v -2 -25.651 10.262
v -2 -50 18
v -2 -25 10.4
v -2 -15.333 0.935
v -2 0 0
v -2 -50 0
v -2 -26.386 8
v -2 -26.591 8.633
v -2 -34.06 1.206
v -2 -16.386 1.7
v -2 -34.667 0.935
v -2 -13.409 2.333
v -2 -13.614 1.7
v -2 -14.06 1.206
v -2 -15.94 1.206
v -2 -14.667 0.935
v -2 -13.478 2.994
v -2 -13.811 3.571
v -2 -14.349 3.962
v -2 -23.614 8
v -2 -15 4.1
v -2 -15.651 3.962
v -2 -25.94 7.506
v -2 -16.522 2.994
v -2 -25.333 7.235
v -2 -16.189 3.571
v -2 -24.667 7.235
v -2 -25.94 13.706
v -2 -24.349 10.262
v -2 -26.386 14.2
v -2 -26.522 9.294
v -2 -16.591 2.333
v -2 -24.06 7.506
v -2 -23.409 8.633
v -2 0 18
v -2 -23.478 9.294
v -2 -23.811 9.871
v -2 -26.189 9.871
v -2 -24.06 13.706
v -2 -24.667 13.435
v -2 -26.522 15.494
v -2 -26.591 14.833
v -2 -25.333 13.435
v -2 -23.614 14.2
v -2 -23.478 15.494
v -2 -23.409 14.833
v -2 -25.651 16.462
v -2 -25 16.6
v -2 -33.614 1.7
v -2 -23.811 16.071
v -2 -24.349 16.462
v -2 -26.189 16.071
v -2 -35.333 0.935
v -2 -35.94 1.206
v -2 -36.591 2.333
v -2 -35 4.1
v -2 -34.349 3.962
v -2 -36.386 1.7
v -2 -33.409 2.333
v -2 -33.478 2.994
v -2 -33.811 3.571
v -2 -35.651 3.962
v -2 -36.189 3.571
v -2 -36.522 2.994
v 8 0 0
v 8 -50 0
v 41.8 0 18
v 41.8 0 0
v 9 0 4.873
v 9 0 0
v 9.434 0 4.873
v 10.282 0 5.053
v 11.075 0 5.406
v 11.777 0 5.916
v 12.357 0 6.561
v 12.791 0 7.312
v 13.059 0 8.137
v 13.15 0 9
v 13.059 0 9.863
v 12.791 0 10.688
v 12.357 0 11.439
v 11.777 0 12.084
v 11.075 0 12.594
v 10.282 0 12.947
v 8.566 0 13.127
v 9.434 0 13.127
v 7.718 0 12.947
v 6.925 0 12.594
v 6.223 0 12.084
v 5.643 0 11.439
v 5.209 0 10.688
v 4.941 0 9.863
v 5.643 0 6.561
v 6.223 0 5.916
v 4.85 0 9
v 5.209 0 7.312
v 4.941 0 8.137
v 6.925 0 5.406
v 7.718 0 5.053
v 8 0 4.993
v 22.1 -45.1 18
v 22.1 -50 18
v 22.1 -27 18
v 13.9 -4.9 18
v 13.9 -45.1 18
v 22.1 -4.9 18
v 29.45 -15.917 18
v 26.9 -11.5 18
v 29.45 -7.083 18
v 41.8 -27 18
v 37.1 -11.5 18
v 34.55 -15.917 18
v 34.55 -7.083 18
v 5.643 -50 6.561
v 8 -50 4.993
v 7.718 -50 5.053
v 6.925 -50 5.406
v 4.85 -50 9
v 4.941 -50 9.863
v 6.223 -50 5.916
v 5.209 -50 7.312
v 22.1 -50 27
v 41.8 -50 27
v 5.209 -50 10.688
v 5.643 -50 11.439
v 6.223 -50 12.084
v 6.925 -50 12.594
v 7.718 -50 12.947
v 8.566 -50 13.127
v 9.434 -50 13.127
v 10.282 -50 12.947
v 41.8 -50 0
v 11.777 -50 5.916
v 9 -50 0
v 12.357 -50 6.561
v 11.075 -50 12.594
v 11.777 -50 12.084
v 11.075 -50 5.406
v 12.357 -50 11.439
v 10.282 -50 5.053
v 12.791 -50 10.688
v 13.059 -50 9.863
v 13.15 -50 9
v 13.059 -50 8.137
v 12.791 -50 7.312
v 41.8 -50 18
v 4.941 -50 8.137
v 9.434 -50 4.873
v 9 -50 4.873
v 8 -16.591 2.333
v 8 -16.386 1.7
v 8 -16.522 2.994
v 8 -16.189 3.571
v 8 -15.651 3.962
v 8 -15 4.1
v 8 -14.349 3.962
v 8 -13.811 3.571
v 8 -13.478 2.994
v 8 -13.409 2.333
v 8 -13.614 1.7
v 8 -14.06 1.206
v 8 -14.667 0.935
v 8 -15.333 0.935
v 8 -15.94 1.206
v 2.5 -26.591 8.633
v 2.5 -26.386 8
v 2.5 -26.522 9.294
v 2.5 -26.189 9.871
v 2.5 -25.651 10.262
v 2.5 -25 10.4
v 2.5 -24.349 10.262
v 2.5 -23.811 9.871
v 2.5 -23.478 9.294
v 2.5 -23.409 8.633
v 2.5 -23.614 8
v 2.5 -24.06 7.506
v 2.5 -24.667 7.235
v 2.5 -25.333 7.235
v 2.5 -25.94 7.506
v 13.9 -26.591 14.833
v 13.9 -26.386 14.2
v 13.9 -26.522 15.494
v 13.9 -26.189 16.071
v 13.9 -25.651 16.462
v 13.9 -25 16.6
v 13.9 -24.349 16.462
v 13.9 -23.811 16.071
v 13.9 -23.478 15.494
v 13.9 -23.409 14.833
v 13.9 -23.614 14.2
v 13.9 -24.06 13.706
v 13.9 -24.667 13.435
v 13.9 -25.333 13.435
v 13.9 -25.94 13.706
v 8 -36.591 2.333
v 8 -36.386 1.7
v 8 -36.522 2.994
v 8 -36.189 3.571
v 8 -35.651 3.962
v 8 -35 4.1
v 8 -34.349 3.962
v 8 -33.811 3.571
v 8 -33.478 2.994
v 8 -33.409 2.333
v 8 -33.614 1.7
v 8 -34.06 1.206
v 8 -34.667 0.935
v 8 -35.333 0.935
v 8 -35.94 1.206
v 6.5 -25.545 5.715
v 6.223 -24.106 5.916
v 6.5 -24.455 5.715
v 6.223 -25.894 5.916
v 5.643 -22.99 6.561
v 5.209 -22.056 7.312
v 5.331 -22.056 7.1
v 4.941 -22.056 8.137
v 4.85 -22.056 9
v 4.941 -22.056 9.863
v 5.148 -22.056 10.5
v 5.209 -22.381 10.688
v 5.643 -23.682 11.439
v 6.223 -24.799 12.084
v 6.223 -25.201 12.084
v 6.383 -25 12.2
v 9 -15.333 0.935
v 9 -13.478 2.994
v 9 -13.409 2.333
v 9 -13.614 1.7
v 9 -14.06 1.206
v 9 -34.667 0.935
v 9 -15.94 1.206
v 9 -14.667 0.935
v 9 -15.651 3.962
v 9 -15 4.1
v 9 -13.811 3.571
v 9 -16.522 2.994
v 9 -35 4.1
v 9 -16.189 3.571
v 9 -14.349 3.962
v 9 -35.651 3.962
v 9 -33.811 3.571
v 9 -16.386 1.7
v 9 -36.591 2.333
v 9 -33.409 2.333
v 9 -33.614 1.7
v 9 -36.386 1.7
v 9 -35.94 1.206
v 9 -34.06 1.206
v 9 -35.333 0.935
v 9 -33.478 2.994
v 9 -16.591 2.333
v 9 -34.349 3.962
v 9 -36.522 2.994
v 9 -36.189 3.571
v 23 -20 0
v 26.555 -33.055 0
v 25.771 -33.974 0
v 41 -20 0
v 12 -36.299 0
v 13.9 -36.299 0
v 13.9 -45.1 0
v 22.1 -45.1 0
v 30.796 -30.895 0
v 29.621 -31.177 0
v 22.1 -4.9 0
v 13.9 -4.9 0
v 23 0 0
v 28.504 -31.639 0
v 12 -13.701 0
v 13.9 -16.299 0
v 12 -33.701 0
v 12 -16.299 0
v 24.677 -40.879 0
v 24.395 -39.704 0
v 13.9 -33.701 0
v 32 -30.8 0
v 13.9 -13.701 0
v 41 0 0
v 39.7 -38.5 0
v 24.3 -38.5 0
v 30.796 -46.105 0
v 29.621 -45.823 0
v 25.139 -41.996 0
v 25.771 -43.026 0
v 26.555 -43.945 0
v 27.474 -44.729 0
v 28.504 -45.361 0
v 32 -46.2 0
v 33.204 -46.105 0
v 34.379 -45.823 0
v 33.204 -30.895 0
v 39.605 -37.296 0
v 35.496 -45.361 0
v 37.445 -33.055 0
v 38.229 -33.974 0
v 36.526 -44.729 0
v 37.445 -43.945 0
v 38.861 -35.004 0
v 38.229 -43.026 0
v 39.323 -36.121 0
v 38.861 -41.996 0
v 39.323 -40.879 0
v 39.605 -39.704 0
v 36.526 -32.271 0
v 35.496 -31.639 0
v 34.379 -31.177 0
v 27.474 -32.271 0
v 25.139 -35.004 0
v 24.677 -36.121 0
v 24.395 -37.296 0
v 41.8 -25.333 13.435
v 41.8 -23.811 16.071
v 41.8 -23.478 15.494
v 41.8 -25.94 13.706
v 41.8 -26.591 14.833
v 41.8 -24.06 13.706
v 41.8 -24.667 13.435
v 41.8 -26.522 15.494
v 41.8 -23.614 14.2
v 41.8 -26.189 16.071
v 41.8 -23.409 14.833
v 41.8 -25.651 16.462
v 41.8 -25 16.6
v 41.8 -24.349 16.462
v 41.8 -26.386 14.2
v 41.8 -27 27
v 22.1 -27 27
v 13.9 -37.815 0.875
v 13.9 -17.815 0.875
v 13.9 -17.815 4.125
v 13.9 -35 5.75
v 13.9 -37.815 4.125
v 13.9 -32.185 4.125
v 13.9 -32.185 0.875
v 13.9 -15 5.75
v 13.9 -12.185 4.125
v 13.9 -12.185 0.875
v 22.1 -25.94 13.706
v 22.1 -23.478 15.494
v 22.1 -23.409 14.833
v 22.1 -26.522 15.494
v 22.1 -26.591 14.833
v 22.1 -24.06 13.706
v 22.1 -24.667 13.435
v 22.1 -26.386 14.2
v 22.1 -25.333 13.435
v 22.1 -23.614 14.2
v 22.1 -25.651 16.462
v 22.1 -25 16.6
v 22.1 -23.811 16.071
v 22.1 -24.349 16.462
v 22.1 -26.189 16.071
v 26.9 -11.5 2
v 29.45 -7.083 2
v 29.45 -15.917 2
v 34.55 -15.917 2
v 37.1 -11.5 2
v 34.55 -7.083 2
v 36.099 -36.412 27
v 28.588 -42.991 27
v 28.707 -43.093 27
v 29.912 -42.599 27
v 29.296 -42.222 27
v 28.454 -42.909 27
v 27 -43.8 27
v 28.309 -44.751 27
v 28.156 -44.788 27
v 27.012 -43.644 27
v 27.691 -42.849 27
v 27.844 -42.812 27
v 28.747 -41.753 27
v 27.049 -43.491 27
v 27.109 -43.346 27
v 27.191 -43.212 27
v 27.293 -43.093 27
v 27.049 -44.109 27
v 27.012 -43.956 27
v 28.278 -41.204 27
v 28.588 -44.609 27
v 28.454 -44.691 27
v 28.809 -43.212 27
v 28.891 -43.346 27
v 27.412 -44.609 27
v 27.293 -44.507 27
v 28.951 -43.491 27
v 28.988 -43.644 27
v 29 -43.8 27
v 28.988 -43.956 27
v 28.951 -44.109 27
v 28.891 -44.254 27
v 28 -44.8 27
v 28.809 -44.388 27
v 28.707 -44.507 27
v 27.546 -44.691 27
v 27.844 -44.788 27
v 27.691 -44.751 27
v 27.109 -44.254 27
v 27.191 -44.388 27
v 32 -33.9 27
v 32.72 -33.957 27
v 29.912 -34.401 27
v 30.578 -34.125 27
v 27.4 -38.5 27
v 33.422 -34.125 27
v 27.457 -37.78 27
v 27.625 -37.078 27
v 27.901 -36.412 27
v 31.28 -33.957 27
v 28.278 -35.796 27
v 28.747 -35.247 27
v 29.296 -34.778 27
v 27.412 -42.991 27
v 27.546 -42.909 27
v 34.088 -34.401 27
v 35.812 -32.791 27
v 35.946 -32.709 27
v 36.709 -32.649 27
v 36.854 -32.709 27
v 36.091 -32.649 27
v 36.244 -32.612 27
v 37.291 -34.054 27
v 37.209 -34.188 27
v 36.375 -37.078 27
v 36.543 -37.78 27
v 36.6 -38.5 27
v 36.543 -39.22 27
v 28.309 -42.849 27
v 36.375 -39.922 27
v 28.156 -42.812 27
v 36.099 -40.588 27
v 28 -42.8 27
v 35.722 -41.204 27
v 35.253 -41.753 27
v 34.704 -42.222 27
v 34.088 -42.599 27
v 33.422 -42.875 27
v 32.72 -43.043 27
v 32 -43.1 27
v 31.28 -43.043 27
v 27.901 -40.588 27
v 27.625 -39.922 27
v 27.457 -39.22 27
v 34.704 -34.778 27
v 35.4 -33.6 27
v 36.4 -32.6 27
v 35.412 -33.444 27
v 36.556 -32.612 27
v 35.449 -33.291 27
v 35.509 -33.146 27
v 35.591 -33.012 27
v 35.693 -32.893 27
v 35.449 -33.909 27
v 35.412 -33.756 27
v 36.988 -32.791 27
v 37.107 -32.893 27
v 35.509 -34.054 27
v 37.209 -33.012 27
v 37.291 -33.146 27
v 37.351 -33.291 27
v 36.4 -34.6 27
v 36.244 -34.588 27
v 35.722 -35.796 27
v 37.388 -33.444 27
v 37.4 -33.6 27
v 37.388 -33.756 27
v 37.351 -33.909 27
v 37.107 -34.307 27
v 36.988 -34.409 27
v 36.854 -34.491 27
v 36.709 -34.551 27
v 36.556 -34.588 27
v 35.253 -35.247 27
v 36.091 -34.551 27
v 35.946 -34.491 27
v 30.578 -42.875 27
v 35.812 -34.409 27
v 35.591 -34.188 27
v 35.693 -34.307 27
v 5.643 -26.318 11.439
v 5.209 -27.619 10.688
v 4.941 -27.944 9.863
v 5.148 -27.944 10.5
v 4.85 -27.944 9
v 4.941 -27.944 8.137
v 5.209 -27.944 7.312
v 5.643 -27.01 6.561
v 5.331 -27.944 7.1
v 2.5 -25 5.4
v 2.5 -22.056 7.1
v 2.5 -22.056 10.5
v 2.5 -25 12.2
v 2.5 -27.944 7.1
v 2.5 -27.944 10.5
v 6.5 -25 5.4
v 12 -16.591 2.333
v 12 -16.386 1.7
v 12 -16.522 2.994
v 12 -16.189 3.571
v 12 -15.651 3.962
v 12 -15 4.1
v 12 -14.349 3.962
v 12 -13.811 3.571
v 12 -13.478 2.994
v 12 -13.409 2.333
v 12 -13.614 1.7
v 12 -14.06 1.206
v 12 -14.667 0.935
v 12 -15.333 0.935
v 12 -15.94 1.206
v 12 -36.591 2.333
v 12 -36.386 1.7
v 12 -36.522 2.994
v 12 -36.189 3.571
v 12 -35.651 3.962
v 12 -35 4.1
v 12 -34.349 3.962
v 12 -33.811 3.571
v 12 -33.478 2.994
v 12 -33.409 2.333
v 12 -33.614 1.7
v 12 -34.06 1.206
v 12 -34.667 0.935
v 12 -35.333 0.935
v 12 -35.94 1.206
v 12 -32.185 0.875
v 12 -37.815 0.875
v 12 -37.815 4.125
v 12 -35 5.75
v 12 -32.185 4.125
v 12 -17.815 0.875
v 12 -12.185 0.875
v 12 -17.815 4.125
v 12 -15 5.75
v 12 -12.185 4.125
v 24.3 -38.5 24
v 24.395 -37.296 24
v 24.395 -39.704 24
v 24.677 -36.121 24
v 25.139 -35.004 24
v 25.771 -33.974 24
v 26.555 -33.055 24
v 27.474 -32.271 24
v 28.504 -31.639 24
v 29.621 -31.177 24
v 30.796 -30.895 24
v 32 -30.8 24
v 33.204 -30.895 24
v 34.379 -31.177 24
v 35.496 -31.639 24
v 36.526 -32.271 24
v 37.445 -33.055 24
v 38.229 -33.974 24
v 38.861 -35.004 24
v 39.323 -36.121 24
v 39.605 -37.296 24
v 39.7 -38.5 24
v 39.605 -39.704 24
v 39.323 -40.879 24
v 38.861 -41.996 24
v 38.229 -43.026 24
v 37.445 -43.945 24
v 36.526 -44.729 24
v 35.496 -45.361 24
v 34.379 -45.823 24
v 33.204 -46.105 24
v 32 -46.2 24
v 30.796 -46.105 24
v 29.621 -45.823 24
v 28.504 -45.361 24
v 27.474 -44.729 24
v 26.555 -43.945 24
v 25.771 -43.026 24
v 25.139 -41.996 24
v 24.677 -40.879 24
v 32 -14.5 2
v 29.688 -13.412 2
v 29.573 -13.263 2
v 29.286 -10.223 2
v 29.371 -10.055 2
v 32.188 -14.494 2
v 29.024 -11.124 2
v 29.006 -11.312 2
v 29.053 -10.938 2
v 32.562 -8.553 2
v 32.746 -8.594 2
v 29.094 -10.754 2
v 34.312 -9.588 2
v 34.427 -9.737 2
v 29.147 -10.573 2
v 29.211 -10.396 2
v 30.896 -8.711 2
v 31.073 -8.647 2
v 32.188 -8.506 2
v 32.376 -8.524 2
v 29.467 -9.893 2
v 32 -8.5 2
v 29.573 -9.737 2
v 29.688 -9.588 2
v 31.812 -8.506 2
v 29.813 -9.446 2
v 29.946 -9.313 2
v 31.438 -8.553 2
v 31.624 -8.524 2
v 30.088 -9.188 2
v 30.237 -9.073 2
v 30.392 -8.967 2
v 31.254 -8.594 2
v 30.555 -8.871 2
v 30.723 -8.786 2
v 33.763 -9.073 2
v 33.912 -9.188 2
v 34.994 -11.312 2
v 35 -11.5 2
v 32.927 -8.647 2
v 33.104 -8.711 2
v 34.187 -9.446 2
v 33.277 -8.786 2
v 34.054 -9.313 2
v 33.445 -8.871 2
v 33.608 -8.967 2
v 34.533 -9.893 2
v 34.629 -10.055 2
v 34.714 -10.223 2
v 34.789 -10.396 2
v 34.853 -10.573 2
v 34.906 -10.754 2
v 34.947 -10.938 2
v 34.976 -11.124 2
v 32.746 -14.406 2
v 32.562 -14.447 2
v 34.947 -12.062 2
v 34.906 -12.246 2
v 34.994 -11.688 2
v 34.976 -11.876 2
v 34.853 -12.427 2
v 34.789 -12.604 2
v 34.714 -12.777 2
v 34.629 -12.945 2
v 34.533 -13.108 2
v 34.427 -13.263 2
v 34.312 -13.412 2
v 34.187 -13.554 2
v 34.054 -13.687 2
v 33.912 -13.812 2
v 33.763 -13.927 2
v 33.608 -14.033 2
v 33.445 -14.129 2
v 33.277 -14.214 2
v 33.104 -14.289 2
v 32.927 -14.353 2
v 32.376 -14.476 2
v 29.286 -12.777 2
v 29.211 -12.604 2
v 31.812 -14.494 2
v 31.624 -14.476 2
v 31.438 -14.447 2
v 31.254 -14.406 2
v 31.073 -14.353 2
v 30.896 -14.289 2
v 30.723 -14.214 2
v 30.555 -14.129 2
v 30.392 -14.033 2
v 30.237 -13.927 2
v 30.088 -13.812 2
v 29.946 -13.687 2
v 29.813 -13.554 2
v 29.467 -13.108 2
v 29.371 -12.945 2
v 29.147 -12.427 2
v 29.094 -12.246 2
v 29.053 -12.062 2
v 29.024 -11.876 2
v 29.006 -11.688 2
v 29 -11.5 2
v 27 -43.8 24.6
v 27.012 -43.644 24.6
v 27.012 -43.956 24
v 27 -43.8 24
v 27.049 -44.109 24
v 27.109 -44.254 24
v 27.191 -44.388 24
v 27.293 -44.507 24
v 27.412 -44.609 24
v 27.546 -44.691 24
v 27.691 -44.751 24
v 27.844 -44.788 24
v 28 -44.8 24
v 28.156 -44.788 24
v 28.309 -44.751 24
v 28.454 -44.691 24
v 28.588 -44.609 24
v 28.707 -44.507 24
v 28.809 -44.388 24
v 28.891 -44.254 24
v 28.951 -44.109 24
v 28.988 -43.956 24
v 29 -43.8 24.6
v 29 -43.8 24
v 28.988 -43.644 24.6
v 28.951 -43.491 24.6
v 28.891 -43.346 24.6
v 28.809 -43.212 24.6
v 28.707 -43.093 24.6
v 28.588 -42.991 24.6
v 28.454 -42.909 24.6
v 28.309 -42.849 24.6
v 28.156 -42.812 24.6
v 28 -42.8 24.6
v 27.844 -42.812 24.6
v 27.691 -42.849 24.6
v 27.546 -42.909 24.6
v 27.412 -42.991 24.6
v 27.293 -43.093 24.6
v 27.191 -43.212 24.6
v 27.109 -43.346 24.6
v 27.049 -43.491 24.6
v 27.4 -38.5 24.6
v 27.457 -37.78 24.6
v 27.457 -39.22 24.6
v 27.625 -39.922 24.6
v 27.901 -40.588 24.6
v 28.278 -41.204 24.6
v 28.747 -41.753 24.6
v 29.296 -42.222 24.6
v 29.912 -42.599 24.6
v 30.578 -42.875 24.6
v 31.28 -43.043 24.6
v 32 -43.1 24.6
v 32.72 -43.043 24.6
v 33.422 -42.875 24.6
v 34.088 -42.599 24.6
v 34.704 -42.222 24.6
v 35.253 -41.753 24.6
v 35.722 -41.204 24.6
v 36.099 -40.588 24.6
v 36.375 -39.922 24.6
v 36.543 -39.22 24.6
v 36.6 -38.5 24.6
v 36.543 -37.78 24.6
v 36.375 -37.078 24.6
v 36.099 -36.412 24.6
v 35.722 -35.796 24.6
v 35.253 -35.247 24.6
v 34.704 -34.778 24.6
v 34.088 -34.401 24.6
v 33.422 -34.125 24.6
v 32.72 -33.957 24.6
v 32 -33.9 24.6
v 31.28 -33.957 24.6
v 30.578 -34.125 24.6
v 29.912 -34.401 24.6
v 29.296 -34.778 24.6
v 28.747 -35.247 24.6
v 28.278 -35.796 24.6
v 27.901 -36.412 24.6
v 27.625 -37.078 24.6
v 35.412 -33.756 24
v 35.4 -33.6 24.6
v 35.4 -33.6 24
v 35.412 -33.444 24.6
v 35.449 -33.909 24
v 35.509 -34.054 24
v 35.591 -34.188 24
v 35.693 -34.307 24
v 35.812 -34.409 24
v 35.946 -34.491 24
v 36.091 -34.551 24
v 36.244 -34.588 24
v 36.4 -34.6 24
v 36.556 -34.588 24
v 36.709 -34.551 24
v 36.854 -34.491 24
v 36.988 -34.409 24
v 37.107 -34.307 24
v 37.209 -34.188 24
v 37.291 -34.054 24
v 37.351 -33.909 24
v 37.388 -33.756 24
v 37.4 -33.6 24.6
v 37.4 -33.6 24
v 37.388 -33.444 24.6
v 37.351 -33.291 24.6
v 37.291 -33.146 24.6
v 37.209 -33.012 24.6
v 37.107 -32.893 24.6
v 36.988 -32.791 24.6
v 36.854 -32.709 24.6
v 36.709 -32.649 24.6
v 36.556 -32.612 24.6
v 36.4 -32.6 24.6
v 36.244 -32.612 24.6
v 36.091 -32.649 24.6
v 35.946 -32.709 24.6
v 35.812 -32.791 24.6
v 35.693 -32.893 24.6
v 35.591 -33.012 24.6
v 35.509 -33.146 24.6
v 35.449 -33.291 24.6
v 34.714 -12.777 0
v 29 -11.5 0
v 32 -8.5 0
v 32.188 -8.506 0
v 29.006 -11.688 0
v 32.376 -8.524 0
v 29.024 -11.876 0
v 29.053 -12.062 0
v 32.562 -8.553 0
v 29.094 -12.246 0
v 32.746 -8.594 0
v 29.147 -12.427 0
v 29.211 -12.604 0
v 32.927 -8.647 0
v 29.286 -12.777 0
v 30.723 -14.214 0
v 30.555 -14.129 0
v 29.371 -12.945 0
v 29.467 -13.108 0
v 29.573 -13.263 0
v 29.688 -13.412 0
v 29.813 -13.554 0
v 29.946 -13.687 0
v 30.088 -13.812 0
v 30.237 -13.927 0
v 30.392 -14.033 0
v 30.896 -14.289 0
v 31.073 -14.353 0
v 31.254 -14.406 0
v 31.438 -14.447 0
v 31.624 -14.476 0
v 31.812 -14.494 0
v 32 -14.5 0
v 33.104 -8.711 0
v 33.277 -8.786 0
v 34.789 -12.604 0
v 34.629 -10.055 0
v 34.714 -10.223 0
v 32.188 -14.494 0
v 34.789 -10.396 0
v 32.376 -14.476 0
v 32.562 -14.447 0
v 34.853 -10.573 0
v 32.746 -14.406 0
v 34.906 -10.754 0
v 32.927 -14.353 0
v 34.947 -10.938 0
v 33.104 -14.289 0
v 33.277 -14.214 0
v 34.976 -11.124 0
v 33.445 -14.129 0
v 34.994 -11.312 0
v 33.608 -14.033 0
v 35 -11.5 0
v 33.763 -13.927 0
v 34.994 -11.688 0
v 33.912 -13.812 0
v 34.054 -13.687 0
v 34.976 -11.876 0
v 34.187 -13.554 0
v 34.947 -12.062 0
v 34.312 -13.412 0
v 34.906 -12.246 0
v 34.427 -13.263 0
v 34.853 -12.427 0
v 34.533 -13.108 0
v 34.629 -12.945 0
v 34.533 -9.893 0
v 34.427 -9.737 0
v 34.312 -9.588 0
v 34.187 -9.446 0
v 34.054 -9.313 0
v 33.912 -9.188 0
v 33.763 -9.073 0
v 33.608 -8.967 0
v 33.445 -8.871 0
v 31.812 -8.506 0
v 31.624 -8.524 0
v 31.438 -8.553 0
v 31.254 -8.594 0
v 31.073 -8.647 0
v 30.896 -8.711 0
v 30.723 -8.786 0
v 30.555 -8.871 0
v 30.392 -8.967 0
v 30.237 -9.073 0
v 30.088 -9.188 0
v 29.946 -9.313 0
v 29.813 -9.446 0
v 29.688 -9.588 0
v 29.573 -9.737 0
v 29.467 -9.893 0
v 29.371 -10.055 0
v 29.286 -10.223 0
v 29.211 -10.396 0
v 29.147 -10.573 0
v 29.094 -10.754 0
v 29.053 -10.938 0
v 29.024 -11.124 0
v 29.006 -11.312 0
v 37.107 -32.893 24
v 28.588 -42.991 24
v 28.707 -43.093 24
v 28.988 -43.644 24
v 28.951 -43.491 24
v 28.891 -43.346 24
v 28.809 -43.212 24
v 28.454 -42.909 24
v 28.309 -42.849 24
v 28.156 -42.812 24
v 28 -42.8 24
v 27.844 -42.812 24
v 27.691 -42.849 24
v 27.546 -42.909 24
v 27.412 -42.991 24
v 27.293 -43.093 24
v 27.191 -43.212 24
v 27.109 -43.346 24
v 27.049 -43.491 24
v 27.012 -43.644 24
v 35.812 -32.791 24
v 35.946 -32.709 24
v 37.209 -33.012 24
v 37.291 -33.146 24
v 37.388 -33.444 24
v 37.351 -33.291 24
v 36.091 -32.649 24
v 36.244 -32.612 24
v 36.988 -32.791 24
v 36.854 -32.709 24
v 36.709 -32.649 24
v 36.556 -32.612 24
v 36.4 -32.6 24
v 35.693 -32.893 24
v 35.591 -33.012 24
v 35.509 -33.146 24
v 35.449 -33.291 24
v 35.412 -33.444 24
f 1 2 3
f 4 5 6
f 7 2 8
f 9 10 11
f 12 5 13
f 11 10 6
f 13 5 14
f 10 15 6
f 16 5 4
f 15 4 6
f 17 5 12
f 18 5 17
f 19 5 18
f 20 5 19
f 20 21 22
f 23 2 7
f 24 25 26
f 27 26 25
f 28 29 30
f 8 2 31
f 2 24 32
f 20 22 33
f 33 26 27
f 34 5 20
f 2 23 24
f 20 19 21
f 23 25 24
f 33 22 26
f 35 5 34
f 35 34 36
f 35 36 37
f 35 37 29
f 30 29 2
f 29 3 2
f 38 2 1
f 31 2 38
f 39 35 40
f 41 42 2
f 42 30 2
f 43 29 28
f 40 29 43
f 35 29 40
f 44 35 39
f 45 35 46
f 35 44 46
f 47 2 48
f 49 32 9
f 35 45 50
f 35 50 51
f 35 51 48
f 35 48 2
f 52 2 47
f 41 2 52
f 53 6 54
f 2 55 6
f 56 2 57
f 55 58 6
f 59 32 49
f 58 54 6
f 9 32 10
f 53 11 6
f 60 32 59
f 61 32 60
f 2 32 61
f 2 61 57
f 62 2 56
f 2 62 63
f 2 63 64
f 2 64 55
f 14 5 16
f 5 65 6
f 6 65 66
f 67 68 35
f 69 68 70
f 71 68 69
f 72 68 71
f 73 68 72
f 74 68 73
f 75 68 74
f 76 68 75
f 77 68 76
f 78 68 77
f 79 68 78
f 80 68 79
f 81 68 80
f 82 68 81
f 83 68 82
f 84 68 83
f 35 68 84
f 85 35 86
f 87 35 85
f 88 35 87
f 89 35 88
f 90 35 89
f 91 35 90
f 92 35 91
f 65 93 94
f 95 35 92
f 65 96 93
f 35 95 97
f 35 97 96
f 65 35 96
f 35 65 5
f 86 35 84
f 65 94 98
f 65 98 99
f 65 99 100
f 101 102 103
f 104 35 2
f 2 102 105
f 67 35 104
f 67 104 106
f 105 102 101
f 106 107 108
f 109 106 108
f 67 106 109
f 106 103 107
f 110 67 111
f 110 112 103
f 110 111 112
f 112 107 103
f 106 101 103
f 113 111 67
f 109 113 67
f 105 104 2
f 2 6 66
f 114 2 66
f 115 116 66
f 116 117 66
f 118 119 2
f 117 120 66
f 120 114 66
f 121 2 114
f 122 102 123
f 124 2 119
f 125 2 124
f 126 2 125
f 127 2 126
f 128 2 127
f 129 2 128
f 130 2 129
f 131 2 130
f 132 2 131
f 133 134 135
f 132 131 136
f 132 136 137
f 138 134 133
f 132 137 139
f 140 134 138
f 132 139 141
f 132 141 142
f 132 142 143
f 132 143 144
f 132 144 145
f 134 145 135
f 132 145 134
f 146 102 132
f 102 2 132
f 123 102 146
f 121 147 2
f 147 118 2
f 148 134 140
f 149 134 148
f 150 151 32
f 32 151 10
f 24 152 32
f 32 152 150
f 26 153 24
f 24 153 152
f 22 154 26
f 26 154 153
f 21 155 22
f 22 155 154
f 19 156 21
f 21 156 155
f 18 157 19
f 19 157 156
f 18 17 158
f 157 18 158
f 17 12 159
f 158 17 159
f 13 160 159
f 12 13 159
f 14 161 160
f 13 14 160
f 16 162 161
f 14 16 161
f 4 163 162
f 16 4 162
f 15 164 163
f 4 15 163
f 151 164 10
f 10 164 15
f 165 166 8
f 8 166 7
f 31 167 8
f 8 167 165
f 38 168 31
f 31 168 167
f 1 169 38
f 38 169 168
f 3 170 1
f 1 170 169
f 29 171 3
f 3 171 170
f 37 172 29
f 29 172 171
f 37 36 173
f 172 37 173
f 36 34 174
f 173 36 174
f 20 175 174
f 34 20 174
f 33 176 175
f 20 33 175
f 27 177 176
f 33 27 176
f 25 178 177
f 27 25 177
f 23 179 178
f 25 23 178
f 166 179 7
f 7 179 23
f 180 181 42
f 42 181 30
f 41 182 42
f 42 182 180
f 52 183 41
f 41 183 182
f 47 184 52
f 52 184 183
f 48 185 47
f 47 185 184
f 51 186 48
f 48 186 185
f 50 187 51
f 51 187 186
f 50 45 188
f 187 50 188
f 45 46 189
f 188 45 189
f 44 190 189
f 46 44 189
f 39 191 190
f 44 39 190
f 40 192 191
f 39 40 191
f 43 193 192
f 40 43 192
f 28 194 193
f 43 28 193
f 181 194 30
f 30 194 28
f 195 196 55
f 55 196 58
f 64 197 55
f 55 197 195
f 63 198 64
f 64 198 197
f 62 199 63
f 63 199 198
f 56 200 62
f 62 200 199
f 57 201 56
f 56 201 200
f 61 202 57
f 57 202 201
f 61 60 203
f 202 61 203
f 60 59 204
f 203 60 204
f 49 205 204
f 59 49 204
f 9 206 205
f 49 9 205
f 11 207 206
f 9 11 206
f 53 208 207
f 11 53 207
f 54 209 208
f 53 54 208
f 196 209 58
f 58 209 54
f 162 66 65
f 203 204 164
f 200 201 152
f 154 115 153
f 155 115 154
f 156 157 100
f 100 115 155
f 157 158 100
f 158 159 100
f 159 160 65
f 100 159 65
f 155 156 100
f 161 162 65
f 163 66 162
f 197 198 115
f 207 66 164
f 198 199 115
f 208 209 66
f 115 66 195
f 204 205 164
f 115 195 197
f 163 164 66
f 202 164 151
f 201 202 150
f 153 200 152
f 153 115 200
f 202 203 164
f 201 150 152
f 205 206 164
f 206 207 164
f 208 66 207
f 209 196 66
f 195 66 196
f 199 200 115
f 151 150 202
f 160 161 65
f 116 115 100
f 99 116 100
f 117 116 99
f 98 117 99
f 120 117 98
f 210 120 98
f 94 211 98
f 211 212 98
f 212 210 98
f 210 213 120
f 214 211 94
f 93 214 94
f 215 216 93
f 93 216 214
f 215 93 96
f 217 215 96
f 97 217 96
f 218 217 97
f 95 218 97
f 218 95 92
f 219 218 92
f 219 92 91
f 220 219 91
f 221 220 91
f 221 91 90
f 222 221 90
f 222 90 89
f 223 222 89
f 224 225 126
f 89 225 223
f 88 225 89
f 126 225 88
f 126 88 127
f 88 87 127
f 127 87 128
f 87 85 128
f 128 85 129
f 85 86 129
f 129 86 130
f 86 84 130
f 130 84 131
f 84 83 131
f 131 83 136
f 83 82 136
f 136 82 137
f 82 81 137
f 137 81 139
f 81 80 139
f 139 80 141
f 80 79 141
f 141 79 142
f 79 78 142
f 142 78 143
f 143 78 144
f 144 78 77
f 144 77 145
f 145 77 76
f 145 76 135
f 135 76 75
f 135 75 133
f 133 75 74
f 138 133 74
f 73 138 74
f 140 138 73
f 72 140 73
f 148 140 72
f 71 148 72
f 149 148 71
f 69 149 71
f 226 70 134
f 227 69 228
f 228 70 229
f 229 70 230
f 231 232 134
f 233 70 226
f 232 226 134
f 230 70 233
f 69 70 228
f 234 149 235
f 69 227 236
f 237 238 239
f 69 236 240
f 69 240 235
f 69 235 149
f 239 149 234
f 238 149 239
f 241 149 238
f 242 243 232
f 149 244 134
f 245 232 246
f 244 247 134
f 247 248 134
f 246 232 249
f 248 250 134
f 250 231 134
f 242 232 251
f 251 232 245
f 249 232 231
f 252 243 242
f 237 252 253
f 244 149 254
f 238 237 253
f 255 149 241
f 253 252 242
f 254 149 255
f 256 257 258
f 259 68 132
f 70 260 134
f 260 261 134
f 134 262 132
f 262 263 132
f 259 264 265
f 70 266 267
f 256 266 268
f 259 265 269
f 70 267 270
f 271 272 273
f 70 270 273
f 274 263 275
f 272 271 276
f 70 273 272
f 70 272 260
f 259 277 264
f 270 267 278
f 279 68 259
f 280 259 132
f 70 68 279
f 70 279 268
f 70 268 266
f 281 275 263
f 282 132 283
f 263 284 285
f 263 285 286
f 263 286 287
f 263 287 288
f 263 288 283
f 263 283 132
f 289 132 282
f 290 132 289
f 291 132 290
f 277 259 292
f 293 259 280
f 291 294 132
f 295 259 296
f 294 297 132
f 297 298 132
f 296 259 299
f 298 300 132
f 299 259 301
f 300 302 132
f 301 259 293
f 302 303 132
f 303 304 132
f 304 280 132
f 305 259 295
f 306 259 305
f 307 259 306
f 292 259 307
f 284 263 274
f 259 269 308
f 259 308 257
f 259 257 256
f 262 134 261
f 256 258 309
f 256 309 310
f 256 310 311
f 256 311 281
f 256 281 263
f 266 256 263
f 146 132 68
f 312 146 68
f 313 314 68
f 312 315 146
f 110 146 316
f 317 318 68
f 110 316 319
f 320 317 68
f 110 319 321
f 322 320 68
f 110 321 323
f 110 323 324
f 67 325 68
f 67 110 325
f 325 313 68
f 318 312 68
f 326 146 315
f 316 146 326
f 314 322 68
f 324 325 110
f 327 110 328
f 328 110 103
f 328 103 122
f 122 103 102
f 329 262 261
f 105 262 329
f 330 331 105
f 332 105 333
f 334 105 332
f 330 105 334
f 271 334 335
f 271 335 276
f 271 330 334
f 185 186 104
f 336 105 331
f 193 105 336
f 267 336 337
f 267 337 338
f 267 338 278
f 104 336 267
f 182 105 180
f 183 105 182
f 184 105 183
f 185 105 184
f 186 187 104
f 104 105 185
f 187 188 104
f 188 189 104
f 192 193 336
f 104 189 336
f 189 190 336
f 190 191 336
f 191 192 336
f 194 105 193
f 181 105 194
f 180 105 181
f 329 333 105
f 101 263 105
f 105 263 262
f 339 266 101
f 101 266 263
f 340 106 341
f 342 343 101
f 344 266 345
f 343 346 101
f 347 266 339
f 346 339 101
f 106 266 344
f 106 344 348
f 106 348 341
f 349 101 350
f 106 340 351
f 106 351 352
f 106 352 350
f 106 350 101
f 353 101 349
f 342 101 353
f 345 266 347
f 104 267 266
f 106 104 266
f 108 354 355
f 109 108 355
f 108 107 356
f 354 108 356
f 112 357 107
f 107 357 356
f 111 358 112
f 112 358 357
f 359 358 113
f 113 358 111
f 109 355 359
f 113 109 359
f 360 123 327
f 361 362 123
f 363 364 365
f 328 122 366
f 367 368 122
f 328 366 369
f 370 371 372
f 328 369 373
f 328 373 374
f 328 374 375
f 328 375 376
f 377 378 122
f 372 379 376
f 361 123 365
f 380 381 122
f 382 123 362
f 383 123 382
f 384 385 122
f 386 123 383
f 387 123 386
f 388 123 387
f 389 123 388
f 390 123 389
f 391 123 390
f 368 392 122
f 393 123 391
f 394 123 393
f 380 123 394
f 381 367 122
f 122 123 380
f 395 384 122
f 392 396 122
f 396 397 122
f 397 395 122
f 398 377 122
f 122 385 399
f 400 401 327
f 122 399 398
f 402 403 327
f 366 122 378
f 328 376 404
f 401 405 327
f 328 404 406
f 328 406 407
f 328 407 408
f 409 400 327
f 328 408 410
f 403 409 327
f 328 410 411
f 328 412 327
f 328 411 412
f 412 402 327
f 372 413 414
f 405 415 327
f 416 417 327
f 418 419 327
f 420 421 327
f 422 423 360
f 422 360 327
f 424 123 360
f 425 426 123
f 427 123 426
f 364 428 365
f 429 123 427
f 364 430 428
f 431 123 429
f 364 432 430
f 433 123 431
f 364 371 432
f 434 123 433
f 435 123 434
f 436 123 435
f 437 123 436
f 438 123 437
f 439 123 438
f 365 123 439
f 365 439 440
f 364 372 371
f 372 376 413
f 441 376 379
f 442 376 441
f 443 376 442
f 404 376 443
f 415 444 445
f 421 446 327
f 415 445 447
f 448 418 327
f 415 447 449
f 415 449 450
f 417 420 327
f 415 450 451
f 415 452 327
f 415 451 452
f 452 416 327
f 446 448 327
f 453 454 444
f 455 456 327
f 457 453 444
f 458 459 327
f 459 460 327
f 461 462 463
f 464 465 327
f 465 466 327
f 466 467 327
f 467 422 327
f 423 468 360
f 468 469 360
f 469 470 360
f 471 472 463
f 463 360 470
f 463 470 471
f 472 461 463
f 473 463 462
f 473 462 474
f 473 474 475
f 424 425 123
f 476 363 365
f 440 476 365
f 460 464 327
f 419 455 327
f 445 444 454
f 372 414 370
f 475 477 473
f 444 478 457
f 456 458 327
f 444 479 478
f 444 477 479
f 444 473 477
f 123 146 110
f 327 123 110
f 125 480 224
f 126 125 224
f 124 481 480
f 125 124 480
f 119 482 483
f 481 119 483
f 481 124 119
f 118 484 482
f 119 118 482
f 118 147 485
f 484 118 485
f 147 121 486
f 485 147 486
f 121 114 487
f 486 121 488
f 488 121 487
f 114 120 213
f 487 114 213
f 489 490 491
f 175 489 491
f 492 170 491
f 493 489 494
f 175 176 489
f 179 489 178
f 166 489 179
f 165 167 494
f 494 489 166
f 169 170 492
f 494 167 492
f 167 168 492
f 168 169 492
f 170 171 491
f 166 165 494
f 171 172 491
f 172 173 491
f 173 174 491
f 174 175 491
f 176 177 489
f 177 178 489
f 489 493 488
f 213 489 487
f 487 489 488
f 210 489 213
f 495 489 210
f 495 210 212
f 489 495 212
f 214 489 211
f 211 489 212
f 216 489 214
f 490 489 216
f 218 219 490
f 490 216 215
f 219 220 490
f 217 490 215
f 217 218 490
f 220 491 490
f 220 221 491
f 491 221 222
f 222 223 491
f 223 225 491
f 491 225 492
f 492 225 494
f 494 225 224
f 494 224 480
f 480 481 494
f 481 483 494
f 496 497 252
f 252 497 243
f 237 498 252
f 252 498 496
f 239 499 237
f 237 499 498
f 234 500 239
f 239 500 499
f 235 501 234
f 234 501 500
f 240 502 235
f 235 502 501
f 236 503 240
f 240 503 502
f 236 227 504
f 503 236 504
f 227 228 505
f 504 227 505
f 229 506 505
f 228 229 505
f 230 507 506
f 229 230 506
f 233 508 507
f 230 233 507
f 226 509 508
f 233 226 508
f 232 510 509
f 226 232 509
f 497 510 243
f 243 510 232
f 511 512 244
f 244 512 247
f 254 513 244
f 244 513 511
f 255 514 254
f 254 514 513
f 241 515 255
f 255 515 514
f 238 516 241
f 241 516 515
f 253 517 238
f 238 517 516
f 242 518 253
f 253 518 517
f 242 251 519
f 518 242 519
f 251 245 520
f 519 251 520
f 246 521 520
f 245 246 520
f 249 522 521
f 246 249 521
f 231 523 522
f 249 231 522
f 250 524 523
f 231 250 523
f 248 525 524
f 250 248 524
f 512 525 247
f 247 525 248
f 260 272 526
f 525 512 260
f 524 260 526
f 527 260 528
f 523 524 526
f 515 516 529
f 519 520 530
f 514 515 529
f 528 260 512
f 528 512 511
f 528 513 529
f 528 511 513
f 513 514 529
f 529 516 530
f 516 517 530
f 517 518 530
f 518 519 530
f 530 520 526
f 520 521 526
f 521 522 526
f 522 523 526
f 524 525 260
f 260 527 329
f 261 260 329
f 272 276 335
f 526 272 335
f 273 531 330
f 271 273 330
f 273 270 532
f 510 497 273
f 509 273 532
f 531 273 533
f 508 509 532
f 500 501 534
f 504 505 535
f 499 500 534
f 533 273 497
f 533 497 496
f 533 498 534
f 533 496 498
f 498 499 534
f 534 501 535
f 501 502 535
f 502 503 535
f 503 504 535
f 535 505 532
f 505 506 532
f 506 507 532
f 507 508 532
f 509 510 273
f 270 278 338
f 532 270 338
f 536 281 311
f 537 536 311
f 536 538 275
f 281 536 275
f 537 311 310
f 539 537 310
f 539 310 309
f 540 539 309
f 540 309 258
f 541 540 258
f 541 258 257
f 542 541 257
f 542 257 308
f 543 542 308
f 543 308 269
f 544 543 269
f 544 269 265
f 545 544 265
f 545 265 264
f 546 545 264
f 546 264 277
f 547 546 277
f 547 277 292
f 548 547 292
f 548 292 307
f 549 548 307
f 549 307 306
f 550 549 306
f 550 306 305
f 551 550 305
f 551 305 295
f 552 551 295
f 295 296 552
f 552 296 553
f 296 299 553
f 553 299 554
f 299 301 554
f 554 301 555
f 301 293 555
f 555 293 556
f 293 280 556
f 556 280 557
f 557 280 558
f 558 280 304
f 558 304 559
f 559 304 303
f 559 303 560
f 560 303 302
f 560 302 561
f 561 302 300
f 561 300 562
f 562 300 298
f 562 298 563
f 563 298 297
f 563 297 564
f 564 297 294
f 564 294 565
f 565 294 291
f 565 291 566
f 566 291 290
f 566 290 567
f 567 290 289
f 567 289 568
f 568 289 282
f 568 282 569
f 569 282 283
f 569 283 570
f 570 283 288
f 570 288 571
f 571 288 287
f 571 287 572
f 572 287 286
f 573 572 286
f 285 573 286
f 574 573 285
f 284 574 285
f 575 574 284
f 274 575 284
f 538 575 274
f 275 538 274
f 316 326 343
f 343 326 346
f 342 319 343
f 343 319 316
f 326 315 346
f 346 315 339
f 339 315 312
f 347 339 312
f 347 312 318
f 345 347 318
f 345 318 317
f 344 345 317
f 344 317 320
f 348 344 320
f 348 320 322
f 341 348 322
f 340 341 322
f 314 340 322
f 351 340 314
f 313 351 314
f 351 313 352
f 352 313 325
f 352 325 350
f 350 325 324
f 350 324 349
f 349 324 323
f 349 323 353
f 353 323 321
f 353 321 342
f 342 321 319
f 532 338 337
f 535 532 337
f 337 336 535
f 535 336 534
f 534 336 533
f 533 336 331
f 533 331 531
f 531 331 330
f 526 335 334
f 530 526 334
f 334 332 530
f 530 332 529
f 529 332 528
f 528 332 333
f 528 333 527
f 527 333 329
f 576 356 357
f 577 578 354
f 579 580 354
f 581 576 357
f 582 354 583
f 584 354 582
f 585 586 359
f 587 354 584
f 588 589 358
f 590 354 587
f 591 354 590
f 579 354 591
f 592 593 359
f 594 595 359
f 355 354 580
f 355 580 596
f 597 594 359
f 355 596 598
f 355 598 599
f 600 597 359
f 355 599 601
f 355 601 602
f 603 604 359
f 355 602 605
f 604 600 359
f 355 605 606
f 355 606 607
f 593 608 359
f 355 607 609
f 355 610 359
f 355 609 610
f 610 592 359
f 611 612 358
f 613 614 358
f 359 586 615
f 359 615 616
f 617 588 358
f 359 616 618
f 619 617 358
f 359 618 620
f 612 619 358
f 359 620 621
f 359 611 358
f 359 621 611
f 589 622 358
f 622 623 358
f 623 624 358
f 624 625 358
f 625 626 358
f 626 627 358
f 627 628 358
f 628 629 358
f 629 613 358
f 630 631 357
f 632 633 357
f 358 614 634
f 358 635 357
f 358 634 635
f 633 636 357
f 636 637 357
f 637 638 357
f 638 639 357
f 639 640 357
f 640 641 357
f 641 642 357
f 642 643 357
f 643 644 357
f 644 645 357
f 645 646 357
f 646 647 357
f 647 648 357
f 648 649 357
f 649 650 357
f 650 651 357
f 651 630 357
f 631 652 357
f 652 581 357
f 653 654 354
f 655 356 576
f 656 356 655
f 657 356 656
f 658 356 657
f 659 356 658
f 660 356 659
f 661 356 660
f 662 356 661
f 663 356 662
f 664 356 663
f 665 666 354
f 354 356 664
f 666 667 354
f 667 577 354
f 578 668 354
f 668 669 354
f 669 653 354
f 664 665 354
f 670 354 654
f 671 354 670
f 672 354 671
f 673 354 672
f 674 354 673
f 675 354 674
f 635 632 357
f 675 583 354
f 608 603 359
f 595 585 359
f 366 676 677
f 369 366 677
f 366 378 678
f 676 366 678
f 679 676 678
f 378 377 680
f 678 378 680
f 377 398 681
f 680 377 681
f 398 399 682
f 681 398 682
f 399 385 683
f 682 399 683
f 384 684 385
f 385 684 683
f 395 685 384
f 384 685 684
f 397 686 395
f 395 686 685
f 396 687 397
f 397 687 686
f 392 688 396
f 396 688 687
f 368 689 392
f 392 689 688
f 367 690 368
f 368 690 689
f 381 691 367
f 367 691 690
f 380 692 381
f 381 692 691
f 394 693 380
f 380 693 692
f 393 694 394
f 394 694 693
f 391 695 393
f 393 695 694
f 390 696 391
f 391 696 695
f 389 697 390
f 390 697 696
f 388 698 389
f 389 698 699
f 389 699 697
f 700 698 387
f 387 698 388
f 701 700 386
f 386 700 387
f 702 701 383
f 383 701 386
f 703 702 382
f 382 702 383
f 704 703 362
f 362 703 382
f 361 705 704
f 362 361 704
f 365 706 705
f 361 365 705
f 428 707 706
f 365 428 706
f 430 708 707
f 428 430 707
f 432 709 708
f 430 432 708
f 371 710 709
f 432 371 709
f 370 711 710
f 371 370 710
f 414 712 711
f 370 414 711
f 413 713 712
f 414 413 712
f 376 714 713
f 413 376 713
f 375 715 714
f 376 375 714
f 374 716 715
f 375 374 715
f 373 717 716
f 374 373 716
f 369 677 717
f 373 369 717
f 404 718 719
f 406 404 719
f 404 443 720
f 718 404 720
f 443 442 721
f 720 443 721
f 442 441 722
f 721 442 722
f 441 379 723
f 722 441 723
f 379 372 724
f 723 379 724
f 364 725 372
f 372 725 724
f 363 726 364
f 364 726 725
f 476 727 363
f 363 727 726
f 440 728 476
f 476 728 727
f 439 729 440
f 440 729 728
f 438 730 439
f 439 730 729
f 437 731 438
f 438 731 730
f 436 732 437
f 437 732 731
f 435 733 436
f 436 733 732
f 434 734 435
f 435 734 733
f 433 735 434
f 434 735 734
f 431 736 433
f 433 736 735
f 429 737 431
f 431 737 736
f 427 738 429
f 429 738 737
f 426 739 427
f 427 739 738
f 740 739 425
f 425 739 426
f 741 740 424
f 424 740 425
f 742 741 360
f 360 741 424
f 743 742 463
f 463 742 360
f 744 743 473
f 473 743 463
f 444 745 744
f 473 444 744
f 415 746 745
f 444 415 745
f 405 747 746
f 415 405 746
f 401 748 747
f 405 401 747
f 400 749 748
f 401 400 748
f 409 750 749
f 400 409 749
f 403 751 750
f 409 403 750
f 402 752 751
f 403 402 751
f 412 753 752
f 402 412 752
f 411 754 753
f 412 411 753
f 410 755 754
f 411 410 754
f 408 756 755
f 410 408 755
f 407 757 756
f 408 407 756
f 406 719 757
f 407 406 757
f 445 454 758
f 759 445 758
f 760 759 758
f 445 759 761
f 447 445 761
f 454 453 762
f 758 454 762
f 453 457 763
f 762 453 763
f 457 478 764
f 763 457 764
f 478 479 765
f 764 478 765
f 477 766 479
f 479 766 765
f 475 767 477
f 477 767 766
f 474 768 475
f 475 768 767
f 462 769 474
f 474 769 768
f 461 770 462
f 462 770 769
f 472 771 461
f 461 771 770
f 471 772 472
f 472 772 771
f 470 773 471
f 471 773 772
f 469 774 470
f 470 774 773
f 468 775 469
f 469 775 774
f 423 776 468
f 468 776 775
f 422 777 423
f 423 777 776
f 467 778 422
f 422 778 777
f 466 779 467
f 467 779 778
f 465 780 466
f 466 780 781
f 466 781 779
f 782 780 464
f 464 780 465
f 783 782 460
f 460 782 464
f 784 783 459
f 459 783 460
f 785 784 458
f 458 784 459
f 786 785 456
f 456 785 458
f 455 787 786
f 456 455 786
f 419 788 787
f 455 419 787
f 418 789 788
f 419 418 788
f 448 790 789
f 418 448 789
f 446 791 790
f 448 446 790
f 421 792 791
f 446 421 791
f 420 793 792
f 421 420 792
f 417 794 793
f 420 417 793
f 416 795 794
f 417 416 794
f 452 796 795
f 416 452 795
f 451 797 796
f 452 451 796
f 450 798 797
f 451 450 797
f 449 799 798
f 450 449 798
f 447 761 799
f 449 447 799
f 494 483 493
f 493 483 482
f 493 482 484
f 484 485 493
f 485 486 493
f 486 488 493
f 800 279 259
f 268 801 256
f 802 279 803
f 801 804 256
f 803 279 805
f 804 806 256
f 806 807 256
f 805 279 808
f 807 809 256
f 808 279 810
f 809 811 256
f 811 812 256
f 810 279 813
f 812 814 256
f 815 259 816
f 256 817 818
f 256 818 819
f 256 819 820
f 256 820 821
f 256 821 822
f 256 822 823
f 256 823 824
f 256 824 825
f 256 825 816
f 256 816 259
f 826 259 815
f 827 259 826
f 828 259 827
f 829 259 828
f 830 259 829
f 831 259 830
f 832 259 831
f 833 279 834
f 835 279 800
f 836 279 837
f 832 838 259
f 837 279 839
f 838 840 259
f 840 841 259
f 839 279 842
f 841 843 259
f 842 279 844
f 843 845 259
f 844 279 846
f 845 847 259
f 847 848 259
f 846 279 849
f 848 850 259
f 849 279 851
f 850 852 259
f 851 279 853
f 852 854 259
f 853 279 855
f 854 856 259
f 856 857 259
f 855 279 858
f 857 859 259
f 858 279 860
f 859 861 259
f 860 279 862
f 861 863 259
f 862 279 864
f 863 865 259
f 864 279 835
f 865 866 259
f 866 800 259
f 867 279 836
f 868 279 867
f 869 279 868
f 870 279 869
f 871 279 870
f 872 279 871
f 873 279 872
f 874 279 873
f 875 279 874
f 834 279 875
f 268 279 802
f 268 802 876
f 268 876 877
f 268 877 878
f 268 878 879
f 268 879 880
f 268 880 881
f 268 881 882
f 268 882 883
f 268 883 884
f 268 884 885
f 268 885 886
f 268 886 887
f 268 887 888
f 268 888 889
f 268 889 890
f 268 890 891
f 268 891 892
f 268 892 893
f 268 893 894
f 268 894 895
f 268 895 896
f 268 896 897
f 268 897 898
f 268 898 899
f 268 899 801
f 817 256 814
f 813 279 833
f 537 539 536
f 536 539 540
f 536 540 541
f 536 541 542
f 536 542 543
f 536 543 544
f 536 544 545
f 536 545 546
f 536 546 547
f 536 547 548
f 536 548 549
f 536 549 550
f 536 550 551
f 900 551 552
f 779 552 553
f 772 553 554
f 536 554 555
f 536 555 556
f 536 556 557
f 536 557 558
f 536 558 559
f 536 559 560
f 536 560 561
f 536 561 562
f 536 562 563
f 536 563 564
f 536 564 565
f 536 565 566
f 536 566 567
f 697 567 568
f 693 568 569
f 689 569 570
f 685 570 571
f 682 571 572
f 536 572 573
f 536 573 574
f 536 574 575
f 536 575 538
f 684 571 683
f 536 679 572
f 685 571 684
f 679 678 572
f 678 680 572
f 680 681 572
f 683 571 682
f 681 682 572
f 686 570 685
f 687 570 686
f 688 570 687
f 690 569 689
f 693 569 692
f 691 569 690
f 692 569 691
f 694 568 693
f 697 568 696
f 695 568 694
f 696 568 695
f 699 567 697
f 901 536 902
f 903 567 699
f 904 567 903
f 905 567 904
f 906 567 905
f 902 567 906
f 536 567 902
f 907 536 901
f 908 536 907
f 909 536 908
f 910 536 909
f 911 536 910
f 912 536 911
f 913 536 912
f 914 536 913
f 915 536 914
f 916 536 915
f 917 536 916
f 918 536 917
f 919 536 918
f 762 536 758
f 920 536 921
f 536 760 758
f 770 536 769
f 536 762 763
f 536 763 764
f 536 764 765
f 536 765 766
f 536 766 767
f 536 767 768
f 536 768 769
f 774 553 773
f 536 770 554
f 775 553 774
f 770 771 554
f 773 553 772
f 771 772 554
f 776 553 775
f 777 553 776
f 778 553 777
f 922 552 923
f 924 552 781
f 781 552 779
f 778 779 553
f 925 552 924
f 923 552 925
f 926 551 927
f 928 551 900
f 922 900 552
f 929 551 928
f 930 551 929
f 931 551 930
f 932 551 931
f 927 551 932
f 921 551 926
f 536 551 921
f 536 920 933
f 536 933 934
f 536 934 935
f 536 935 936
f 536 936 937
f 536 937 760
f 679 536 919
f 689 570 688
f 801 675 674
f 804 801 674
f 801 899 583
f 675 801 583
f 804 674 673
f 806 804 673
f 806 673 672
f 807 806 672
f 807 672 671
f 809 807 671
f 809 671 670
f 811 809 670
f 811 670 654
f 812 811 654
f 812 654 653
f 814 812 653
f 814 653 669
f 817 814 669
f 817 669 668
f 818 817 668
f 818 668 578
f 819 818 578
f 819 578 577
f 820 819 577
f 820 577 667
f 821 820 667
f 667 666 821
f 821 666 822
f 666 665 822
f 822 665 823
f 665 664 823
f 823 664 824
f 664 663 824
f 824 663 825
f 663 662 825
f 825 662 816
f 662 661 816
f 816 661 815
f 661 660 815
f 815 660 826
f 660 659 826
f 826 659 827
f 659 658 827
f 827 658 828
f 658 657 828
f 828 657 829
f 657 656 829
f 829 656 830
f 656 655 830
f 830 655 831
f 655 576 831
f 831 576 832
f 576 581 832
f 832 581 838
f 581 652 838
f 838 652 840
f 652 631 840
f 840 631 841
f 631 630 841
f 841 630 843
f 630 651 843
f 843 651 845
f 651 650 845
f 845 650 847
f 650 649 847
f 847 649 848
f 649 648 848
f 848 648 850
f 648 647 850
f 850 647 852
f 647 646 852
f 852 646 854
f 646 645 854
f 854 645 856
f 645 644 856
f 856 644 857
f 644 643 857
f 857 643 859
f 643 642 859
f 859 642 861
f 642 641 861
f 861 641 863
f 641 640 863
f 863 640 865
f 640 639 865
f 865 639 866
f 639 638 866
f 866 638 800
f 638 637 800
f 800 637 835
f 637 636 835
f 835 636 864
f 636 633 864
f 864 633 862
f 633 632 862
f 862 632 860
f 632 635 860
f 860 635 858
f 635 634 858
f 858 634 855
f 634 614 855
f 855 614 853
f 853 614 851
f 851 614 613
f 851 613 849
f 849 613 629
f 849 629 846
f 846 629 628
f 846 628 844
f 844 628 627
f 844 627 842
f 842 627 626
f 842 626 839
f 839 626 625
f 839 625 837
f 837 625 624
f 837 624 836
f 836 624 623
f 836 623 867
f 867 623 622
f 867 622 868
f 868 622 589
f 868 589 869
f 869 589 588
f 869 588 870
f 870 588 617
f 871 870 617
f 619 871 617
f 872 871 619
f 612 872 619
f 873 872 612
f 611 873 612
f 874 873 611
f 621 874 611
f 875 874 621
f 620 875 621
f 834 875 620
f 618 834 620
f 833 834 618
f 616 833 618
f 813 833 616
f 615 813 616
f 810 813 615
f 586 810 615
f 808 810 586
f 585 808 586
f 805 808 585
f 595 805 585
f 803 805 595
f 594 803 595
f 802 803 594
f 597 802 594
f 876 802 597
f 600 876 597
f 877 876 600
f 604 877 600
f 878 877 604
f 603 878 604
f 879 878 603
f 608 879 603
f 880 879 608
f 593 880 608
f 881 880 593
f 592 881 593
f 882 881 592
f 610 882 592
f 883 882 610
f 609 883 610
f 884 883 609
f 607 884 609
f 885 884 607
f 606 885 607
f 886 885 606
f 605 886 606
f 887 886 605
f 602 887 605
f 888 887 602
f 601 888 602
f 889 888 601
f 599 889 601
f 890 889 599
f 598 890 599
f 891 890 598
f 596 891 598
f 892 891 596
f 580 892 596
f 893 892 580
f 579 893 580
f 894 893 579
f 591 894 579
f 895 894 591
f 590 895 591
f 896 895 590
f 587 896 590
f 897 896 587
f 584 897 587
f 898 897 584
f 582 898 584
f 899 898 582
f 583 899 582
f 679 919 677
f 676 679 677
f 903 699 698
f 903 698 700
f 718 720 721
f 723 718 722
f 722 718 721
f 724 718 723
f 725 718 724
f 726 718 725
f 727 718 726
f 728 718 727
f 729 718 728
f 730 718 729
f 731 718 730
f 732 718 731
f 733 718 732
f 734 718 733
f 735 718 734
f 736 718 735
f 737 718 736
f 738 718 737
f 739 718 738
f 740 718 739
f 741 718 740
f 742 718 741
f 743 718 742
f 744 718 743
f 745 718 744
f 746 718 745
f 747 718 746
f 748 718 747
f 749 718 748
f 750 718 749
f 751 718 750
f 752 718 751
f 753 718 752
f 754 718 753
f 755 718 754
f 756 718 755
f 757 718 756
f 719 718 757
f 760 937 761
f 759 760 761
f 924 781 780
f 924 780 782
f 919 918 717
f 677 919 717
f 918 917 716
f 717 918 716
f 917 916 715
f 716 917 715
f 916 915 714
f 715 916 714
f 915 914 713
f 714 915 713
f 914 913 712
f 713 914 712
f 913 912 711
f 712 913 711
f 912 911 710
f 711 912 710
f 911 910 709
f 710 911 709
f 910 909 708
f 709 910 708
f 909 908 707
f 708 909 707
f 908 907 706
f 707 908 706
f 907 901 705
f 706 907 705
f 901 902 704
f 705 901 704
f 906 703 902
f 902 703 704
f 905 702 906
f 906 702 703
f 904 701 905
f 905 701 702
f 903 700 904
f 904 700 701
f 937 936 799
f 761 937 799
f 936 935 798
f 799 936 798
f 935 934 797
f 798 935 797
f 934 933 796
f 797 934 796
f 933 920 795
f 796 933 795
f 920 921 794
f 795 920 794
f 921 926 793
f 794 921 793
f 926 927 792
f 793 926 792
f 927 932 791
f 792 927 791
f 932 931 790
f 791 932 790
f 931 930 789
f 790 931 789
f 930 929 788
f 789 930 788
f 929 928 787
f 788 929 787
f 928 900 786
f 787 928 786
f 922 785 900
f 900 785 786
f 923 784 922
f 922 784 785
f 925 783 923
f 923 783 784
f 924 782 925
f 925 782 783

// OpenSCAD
module BIGblock() {

module block() {

M3 = 3.2/2;

difference() {

union() {
	translate([-2,0,0]) cube([43.8,50,18]);
	translate([-2,10,0])	cube([2,30,18]);
// шапка над подшипником
	translate ([22.1,0,-9]) cube([19.7,23,9]);
}

//	translate([-10,-10,-40])cube([100,100,50]);
//	translate([-10,-10,13])cube([100,100,50]);
//	translate([-78,-10,-20])cube([100,100,50]);

// вырез под оргстекло
//	translate([13.9,5,-1])cube([8.2,40,23]); - не входит
	translate([13.9,4.9,-1])cube([8.2,40.2,23]);

// линейный подшипник 24 * 15 * 8
//translate([32,11,-4]) cylinder(26,r=15.4/2,$fn=40); // для инверсии входа подшипника
	translate([32,11.5,-6]) cylinder(26,r=15.4/2,$fn=40);

	translate([32,11.5,-10]) cylinder(20,r=9.2/2,$fn=40);

	// гайка  M5
//#	translate([32,39,-1])cylinder(6.4,r=4.7,$fn=40);
//#	translate([32,39,10])cylinder(9,r=4.7,$fn=40);
//#	translate([35,32.4,-1])cube([6,13.2,20]);
//	translate ([32,38.5,-1]) cylinder(20,r=9.4/2,$fa=60); // плотно сидит
	translate ([32,38.5,-1]) cylinder(20,r=10.2/2,$fa=60); // свободно сидит

	// Отверстия для извлечения подшипников
	translate([28,6.2,-10]) cylinder(20,r=1,$fn=40);
	translate([36.4,16.4,-10]) cylinder(20,r=1,$fn=40);


	// направляющая - слабо держит
//	translate([9,-1,9])rotate([-90,0,0])cylinder(52,r=8.4/2,$fn=30);
	translate([9,-1,9])rotate([-90,0,0])cylinder(52,r=8.3/2,$fn=30);
	// вырезы у направляющей
//	translate([-1,50,-1])cube([10,20,20]);
//	translate([-1,-1,-1])cube([10,11,20]);
	translate([8,-1,8])cube([1,52,11]);

	// отверстие 1
	translate([-5,15,15.5])rotate([0,90,0])cylinder(20,r=M3,$fn=15);
	translate([12,15,15.5])rotate([0,90,0])cylinder(5,r=6.5/2,$fa=60);

	// отверстие 2
	translate([0,35,0]) {
		translate([-5,0,15.5])rotate([0,90,0])cylinder(20,r=M3,$fn=15);
	translate([12,0,15.5])rotate([0,90,0])cylinder(5,r=6.5/2,$fa=60);
	}
	// отверстие 3 в прижиме
	translate([-9.5,10,-6.6]) {
		translate([-5,15,15.8])rotate([0,90,0])cylinder(20,r=M3,$fn=15);
	translate([12,15,15.8])rotate([0,90,0])cylinder(4,r=6.8/2,$fa=60);
	}
	// сквозное отверстие в детали
		translate([-14.5,25,3])rotate([0,90,0])cylinder(60,r=M3,$fn=15);

}
}

// шапка над гайкой, отверстие в ней
		difference() {
	translate ([23,0,0]) cube([18,20,2]);
	translate ([32,11.5,-5]) cylinder(10,r=6/2,$fn=100);
}

difference() {
// мост над подшипником
	translate ([23,30,24]) cube([18,20,0.6]) ;

// Отверстия для извлечения подшипников
	translate([28,43.8,10]) cylinder(20,r=1,$fn=40);
	translate([36.4,33.6,10])  cylinder(20,r=1,$fn=40);


//	translate ([44,7,24]) rotate([0,0,0]) 	holes();
}

// мост над трубкой - не нужен при верной ориентации прохода втулки
//	translate ([24,30.5,13.5]) cube([16,16,0.5]);

translate([0,50,18])
rotate([180,0,0])
block();
}

// не выводим итоговый результат
mirror([0,1,0]) BIGblock();
